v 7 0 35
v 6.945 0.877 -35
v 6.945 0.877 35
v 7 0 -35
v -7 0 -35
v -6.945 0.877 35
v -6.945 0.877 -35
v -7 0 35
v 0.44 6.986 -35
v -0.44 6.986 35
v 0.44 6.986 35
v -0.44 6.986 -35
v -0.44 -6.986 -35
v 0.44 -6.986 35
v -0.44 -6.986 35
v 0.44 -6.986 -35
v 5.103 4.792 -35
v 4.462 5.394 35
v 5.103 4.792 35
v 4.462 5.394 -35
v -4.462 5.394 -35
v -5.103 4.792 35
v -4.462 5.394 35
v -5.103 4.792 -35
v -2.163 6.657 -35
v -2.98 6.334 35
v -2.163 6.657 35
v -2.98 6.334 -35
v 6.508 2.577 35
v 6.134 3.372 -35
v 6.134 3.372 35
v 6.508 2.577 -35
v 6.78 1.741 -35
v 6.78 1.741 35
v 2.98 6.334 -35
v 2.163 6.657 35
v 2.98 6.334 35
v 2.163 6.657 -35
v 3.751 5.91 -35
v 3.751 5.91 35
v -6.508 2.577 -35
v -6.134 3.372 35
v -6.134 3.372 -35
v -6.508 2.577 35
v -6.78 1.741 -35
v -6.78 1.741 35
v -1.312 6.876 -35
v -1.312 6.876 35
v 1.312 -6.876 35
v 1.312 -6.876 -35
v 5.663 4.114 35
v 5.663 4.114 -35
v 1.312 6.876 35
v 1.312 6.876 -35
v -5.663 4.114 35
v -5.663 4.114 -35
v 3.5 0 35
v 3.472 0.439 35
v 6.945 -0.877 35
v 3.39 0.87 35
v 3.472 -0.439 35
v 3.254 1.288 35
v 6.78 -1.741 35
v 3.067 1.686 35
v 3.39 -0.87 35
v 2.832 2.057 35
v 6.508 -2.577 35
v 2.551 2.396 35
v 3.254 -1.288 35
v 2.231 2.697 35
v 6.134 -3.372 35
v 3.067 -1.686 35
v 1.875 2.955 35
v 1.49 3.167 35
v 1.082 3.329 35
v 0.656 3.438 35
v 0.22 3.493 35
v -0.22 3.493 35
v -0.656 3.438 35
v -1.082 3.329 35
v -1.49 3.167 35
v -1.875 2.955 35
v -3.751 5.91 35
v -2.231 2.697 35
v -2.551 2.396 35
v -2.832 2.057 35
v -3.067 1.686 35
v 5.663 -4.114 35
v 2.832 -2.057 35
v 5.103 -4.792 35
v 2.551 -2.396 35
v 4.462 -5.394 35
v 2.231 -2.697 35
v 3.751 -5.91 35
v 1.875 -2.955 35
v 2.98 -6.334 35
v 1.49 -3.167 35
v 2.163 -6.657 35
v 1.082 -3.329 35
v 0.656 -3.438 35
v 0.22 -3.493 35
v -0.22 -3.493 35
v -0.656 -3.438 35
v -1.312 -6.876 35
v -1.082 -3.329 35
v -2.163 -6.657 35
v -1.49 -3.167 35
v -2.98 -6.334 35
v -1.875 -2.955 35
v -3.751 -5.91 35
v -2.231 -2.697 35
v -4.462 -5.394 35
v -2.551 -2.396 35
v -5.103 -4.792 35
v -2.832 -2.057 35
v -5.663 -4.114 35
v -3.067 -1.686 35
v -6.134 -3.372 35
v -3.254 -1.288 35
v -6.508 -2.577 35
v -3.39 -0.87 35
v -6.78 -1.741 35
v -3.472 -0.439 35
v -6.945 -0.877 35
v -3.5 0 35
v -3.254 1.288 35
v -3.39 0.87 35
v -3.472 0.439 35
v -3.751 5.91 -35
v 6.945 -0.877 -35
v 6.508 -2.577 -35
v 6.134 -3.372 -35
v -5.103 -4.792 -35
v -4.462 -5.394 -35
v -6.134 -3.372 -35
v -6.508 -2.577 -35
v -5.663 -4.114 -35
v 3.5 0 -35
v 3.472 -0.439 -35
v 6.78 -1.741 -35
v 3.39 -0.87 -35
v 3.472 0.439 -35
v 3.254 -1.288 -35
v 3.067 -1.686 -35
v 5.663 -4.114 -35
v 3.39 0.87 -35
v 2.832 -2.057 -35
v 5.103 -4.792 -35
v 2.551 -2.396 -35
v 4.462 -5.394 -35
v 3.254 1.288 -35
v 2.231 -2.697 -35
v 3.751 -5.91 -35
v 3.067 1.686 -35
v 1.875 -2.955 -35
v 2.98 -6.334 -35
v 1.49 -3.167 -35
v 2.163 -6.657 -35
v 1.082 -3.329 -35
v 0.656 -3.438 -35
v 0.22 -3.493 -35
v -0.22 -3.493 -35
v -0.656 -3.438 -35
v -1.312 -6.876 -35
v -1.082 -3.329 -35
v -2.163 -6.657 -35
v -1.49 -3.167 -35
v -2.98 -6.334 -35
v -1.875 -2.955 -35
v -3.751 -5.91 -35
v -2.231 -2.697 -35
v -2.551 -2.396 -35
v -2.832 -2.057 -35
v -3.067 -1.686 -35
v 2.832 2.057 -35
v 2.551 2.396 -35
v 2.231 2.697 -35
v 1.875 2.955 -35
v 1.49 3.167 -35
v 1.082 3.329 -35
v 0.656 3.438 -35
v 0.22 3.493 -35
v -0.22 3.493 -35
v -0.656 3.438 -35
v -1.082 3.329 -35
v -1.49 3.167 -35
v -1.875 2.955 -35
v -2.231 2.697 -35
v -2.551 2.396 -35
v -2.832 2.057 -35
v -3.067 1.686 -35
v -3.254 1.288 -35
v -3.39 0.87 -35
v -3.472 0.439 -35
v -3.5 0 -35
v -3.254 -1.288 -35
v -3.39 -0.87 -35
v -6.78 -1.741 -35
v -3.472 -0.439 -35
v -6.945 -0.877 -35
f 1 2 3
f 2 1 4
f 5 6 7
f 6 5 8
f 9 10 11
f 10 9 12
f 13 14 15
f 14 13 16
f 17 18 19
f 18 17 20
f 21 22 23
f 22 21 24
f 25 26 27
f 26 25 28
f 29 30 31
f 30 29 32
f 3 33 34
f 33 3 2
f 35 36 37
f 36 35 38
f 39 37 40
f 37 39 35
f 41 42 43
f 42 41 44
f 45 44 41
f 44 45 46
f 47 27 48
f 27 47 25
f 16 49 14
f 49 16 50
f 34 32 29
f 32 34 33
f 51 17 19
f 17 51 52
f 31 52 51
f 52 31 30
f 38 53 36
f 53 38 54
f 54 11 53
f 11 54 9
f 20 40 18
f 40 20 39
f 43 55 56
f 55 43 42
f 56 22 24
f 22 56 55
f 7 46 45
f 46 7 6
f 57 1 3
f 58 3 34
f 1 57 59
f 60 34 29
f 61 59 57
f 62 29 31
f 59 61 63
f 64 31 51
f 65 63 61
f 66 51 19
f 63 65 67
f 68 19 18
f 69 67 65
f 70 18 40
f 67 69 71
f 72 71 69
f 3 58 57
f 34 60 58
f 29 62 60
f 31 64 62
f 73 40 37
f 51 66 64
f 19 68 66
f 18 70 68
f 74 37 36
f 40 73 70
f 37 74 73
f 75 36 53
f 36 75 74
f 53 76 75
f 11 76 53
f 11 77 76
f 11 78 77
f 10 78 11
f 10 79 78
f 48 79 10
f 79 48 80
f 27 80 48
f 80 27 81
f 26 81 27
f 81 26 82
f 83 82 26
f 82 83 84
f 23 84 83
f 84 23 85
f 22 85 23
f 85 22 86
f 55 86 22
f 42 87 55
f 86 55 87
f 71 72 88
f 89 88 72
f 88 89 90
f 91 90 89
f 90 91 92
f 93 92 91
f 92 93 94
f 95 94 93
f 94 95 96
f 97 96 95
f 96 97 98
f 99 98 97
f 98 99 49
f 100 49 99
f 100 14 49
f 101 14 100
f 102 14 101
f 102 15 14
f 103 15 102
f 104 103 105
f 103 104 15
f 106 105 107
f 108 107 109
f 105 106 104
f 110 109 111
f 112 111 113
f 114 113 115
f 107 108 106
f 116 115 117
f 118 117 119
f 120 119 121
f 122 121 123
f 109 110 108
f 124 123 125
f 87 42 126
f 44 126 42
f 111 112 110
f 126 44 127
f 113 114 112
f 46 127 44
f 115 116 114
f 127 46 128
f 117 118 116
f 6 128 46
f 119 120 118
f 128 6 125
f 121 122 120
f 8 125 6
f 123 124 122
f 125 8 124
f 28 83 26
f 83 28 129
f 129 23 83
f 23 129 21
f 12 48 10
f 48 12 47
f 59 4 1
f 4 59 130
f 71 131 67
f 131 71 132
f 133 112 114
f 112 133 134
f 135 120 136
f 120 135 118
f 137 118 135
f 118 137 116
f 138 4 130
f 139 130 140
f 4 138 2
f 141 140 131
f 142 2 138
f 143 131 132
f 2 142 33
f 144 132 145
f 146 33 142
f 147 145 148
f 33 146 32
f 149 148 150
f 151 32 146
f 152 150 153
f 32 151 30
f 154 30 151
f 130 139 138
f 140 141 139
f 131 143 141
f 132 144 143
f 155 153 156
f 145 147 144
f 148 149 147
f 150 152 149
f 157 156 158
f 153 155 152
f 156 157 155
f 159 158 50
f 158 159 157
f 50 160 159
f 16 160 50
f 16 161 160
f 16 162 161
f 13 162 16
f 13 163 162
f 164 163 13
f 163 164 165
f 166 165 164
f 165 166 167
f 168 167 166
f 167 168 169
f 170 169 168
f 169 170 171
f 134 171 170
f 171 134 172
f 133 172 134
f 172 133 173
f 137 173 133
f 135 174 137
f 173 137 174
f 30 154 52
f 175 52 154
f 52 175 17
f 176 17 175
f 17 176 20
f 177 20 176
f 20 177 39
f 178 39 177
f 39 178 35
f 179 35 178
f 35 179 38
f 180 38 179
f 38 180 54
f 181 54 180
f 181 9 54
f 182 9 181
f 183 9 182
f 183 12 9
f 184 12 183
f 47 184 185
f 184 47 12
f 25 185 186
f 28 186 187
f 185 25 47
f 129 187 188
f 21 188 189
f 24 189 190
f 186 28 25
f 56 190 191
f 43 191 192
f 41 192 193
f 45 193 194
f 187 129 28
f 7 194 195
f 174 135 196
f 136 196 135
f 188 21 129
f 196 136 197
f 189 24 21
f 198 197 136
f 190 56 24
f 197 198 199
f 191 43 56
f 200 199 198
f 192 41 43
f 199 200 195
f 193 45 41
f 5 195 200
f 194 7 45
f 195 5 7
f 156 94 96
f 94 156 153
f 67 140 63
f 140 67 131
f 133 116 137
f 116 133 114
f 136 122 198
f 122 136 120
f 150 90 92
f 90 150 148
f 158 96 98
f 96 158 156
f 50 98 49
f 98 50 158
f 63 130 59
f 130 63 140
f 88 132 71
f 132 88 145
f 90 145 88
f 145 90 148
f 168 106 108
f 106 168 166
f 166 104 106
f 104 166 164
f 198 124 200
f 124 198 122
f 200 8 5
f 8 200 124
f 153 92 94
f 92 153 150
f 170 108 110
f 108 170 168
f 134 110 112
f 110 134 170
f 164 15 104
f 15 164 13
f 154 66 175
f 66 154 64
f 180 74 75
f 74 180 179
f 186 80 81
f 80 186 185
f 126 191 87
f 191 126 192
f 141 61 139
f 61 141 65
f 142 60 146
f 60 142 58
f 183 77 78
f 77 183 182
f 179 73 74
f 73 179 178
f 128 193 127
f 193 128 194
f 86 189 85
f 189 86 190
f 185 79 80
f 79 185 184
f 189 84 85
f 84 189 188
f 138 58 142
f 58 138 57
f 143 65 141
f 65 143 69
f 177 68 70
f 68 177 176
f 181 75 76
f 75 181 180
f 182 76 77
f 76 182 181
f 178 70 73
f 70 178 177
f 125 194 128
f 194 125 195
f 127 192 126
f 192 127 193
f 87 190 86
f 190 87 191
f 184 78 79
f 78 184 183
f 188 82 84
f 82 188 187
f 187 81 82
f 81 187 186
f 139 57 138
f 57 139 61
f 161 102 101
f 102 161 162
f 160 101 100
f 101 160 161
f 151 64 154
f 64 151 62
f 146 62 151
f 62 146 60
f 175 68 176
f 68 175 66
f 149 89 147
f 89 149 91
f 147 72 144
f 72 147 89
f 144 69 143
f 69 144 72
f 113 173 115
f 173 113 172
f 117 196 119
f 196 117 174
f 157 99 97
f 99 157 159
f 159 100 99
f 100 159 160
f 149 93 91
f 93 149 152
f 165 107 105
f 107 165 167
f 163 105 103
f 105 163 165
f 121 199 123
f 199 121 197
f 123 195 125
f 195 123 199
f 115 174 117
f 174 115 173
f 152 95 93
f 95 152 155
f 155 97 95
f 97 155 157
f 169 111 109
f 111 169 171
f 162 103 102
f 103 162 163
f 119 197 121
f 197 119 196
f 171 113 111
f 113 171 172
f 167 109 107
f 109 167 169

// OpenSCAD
$fn = 50;


difference() {
	union() {
		translate(v = [0, 0, -35.0000000000]) {
			cylinder(h = 70, r = 7.0000000000);
		}
	}
	union() {
		translate(v = [0, 0, -100.0000000000]) {
			cylinder(h = 200, r = 3.5000000000);
		}
	}
}
